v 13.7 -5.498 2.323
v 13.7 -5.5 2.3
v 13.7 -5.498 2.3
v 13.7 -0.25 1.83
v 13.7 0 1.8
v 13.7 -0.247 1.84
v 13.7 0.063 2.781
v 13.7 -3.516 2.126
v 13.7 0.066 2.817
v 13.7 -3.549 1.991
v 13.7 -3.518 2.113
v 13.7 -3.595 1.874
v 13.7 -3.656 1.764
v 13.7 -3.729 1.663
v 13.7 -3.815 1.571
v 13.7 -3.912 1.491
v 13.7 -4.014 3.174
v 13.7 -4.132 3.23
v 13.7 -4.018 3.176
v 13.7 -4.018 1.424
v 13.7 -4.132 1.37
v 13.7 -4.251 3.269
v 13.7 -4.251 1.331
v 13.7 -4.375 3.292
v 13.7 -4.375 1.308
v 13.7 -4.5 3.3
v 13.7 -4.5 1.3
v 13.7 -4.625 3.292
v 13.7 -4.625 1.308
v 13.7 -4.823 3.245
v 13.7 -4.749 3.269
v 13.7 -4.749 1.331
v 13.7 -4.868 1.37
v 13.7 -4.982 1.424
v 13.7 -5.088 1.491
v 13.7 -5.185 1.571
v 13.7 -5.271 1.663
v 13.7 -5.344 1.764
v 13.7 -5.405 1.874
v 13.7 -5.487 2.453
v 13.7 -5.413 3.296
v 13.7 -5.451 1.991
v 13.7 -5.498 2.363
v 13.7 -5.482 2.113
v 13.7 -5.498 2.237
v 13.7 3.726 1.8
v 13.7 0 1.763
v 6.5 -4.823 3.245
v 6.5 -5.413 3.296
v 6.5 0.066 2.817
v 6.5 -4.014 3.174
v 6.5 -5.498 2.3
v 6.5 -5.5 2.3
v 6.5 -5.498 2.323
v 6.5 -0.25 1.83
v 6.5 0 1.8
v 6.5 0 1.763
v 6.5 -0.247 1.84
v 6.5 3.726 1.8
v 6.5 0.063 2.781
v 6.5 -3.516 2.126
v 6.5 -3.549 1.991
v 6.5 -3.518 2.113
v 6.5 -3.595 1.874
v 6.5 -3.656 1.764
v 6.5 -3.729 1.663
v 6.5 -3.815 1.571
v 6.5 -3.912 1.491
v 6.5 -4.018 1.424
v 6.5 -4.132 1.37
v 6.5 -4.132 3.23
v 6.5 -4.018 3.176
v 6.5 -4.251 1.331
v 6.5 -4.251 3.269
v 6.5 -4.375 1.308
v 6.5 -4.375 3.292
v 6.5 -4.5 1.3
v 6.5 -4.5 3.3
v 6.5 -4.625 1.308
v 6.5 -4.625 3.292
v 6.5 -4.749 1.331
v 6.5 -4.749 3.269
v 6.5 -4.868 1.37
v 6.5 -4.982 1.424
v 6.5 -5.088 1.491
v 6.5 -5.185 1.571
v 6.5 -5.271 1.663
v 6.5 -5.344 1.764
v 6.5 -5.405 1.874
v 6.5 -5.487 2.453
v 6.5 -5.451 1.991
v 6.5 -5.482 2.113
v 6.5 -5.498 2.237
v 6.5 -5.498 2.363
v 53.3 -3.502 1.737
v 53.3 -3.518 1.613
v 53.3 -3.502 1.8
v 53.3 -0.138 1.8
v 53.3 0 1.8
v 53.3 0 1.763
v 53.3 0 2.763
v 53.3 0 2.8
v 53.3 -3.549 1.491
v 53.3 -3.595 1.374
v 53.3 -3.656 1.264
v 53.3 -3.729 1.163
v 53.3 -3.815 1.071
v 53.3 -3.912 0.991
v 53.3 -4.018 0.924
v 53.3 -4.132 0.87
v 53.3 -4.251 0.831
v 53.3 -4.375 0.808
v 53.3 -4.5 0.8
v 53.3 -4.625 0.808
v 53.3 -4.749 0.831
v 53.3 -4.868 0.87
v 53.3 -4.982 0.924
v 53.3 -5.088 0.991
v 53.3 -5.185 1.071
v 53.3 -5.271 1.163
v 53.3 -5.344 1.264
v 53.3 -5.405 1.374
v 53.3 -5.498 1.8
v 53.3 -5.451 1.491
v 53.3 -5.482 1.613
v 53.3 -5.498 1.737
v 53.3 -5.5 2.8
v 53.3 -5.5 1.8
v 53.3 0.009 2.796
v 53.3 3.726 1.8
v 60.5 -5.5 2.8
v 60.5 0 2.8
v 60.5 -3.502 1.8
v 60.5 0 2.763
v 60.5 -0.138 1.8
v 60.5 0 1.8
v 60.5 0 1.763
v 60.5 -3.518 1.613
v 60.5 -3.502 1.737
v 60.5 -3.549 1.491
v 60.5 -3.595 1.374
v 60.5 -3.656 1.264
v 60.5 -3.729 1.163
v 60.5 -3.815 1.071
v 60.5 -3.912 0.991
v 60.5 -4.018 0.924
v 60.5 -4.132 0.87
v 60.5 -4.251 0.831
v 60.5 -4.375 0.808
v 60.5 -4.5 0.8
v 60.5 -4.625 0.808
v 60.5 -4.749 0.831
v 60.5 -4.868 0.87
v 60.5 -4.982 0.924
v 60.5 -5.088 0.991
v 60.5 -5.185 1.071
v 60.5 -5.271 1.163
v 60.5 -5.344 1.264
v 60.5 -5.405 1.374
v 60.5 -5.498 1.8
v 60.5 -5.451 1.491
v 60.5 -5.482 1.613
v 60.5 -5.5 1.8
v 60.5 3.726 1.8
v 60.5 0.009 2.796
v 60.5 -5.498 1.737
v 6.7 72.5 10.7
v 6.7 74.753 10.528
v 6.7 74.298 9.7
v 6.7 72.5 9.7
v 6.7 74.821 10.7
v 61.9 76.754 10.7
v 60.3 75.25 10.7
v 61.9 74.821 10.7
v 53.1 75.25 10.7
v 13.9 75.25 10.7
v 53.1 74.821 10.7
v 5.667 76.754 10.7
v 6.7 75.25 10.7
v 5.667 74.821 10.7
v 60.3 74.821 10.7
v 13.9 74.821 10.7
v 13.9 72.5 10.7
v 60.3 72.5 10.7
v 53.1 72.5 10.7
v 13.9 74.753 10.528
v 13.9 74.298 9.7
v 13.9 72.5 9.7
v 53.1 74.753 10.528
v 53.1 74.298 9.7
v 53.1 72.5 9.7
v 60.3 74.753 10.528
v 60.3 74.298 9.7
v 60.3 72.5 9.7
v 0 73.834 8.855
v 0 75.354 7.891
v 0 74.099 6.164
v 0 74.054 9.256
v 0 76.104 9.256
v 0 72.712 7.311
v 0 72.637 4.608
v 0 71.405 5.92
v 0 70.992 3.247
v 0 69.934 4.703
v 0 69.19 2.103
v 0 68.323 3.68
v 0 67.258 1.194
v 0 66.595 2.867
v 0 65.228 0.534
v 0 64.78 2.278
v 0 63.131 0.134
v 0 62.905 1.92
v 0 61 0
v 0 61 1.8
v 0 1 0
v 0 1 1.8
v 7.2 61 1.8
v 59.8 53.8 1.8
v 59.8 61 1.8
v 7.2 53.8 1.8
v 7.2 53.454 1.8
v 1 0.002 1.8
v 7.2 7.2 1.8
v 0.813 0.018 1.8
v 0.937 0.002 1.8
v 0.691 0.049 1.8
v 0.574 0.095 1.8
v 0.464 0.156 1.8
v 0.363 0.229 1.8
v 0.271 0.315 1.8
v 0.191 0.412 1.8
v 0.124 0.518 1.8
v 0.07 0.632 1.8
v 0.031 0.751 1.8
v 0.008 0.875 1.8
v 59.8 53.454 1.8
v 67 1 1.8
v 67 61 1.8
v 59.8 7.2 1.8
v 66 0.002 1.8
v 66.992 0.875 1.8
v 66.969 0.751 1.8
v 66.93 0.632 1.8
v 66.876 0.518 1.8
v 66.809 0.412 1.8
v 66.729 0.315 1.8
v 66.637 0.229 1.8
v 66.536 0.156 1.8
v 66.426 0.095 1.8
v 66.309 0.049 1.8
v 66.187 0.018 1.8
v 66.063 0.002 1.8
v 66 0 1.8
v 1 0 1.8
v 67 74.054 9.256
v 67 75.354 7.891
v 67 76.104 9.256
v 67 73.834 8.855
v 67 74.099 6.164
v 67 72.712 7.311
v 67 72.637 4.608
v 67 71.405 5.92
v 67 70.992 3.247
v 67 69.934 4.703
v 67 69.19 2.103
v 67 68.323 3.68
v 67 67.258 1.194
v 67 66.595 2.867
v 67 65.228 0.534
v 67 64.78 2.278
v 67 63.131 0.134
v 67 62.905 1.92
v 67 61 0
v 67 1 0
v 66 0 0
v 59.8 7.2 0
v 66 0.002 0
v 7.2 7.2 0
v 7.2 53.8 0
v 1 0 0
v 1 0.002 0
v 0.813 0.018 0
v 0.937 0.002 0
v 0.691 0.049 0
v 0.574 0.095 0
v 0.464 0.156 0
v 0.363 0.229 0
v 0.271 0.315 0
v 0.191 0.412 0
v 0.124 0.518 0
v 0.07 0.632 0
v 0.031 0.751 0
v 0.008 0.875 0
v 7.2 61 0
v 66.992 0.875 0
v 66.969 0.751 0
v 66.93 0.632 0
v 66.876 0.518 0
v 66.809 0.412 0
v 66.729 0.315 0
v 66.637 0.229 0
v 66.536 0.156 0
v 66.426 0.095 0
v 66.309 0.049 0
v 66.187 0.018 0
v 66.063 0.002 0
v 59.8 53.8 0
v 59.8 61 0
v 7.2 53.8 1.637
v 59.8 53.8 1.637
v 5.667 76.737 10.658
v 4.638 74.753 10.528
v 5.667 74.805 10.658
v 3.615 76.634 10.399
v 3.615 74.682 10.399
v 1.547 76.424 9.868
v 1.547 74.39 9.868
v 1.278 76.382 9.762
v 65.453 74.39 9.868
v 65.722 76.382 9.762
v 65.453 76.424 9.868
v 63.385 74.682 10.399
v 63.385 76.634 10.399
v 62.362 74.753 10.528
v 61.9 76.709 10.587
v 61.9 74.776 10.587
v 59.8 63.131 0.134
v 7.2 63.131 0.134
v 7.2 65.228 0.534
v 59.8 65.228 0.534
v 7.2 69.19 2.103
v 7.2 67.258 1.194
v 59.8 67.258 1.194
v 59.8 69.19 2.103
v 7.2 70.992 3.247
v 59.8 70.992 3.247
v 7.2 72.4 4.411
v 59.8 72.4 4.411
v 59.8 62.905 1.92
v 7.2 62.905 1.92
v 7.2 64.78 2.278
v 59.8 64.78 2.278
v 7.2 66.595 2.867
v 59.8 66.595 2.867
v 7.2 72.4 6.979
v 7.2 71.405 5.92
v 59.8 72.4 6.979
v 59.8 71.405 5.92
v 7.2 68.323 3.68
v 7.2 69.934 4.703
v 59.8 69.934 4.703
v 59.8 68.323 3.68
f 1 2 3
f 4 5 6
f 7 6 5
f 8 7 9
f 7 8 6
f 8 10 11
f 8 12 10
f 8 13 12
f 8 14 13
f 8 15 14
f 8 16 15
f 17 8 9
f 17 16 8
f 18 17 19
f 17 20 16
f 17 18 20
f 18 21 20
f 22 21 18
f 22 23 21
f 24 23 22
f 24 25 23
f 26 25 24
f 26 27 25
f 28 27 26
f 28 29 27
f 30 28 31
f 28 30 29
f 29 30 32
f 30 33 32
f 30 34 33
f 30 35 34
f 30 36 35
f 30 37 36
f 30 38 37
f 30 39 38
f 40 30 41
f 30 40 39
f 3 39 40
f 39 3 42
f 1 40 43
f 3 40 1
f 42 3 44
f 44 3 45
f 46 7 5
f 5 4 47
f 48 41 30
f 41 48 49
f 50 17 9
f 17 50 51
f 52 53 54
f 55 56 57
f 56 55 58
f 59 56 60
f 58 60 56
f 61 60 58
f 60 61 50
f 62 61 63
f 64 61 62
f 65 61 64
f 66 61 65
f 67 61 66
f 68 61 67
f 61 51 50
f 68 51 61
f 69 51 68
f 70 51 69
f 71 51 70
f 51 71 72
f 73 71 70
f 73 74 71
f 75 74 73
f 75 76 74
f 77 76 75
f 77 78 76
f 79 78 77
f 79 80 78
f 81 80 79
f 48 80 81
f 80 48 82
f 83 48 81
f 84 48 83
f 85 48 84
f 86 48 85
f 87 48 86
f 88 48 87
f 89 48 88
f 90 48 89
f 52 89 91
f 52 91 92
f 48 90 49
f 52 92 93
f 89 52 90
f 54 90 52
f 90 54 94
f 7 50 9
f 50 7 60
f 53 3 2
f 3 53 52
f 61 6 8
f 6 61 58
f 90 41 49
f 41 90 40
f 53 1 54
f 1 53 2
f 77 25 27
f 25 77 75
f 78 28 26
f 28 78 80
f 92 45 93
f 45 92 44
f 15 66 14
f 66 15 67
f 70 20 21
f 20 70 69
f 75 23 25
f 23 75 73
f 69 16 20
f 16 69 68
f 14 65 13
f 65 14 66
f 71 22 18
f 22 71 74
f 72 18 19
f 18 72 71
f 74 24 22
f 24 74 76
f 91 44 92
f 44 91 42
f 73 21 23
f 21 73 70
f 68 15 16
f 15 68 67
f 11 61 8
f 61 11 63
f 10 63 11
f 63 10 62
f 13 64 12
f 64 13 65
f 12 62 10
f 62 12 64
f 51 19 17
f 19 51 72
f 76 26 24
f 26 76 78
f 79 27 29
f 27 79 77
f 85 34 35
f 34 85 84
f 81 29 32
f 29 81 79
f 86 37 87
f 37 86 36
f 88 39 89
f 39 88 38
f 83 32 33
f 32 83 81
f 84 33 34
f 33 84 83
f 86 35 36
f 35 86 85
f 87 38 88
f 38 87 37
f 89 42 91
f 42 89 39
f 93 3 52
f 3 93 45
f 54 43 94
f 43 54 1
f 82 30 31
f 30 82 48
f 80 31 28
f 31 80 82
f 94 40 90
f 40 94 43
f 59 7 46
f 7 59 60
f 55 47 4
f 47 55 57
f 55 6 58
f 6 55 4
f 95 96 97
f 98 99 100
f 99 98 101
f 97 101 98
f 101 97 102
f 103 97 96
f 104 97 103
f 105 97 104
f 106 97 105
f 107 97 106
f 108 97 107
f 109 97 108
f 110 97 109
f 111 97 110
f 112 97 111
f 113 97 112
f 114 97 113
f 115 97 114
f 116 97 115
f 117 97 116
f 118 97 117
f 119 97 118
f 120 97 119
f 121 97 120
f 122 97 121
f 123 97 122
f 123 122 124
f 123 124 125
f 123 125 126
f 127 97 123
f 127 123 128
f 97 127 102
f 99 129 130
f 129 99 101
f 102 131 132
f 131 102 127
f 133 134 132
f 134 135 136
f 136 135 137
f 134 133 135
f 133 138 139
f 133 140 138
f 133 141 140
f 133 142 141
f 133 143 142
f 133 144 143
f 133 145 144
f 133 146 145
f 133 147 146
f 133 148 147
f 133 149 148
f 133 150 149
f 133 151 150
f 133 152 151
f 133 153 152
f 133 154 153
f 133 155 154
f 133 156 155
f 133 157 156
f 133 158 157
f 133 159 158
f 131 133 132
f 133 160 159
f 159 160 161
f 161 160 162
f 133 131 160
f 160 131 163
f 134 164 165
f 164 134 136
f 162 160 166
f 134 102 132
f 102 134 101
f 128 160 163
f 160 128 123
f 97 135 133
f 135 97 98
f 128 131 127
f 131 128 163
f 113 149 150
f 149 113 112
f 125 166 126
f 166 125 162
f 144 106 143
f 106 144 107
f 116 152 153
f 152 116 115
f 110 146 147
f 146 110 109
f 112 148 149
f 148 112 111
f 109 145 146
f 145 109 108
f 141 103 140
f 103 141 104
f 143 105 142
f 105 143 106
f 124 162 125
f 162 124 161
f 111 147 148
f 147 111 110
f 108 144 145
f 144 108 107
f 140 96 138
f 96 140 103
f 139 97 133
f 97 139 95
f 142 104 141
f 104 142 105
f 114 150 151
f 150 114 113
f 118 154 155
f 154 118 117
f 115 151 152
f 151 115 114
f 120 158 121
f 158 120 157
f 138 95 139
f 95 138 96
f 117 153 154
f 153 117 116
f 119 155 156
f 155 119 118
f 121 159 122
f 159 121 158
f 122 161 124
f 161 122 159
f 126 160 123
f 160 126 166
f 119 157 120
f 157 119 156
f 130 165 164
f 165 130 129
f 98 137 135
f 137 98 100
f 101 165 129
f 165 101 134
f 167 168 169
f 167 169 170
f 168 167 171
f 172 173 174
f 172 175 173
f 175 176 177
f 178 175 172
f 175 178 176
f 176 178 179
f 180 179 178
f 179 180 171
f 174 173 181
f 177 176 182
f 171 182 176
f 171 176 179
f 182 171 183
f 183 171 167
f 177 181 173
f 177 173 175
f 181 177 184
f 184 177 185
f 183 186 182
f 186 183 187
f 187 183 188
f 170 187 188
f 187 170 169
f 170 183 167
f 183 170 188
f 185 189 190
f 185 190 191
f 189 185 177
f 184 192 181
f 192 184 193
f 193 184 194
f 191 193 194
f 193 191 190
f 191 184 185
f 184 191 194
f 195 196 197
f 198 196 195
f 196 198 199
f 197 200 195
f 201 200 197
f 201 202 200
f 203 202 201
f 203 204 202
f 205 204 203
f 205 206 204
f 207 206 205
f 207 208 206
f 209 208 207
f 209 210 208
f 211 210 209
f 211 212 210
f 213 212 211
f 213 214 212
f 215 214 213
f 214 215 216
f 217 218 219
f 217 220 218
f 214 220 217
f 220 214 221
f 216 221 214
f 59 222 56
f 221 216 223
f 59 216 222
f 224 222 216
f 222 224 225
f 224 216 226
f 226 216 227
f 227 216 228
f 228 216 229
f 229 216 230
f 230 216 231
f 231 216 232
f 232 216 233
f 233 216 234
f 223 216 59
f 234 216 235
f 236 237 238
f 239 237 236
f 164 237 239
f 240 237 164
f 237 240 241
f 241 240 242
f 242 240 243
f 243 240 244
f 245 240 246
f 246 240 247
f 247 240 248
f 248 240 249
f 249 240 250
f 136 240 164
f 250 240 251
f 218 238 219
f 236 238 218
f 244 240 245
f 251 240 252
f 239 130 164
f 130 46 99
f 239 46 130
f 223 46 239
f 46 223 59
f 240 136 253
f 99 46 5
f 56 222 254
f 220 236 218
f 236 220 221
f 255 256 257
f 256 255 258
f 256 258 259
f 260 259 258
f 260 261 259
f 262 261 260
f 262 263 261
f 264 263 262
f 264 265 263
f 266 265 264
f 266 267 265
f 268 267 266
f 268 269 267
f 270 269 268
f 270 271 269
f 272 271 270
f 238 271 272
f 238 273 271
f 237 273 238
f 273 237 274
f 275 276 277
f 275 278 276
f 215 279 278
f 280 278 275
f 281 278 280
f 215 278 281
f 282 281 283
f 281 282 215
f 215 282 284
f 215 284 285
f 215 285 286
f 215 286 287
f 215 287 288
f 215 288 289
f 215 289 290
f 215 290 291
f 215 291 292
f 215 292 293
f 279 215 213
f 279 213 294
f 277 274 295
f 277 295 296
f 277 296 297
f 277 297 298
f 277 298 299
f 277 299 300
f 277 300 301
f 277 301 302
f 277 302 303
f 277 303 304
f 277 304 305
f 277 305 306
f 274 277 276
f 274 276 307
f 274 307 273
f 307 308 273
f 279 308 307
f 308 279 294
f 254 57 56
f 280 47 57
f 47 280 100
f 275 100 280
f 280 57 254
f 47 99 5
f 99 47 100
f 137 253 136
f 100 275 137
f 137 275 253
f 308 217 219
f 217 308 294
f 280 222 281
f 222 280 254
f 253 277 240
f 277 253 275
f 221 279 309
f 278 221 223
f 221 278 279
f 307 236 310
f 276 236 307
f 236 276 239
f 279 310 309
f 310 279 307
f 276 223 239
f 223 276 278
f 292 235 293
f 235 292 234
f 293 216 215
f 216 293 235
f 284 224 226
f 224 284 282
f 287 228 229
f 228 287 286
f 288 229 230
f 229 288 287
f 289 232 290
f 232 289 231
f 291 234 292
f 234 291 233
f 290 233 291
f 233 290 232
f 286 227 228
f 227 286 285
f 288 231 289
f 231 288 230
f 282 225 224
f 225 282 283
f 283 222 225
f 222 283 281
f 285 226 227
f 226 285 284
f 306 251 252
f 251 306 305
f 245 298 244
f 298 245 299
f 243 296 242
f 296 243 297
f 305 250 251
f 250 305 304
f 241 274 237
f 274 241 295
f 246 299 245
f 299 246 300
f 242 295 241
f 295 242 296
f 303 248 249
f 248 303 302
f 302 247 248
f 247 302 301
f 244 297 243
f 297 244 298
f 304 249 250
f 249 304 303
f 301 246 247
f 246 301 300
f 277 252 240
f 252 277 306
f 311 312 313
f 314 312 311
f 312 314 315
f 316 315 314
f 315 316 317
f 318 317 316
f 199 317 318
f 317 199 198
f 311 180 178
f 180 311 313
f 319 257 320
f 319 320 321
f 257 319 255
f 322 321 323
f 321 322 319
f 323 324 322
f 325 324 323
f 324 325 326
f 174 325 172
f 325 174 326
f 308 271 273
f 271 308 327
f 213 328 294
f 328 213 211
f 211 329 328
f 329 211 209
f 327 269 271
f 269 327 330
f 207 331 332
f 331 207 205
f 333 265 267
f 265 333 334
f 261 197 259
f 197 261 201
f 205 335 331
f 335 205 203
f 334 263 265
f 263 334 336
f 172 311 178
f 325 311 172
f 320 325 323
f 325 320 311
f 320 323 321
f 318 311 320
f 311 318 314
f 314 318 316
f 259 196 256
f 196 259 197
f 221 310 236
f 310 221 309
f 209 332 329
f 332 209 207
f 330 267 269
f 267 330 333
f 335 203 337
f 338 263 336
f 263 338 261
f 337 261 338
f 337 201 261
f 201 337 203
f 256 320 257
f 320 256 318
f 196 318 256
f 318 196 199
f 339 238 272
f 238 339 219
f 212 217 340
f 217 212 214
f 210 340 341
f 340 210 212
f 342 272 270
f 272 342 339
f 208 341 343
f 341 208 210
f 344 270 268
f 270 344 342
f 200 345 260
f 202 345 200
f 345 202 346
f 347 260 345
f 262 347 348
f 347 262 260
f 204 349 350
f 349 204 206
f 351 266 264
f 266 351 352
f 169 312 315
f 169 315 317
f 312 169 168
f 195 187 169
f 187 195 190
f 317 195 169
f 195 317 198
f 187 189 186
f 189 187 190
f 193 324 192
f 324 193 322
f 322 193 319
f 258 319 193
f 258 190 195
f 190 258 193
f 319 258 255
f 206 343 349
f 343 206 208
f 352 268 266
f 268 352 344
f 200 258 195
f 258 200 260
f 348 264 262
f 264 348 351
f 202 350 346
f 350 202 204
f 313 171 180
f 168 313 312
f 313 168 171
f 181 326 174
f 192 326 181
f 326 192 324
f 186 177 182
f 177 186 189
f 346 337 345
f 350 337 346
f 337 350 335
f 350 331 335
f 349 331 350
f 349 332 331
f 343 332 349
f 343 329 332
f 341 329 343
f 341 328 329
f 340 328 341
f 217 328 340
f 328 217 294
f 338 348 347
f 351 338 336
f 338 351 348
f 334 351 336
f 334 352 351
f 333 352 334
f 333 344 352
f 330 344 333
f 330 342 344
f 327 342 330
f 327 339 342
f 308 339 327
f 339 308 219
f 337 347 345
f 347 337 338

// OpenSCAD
$fn = 50;

width = 67;
length = 61;
height = 10.7;
radius_front = 17;
front_length = 15;
top_indent = 3; // for later; how much of the tip of the mouth goes in
thickness = 1.8;
tooth_width = 7.2;
tooth_height = .65;
tooth_length = 5.5;
tooth_distance = 6.5;
tooth_thickness = 1;
tooth_hook_radius = 1;

printer_tolerance = .2;

rounding_radius_small = 1;

module bottom_plate() {
    difference(){
        cube([width, length, thickness]);
        cube([rounding_radius_small, rounding_radius_small, thickness]);
        translate([width - rounding_radius_small, 0, 0])cube([rounding_radius_small, rounding_radius_small, thickness]);
        // save filament for test
        translate([tooth_width, tooth_width, 0])cube([width - 2 * tooth_width, length - 2 * tooth_width, thickness]);
    }
    translate([rounding_radius_small, rounding_radius_small, 0])cylinder(h = thickness, r = rounding_radius_small);
    translate([width - rounding_radius_small, rounding_radius_small, 0])cylinder(h = thickness, r = rounding_radius_small);
}

module front() {
    difference() {
        // start with the cylinder
        translate([0, length, radius_front])rotate([0, 90, 0])cylinder(h = width, r = radius_front);

        // convert cylinder into tube
        translate([0, length, radius_front])rotate([0, 90, 0])cylinder(h = width, r = radius_front - thickness);

        // cut off top - front
        translate([0, length, height])cube([width, length + front_length, width * 2]);

        // cut off top - back
        translate([0, -length, thickness])cube([width, length * 2, length * 2]);


        // save filament for test
        translate([tooth_width, length, 0])cube([width - 2 * tooth_width, front_length - .5 * tooth_width, height]);
    }
}

module teeth() {
    translate([tooth_distance, -tooth_length, thickness + tooth_thickness / 2])rotate([-5, 0, 0])cube([tooth_width, tooth_length, tooth_thickness]);
    translate([tooth_distance, -tooth_length + tooth_hook_radius, thickness + tooth_thickness / 2])rotate([0, 90, 0])cylinder(h = tooth_width, r = tooth_hook_radius);
    translate([tooth_distance, -.25, thickness + .03])rotate([-15, 0, 0])cube([tooth_width, tooth_length, tooth_thickness]);

    translate([width - tooth_width - tooth_distance, -tooth_length, thickness])cube([tooth_width, tooth_length, tooth_thickness]);
    translate([width - tooth_width - tooth_distance, -tooth_length + tooth_hook_radius, thickness])rotate([0, 90, 0])cylinder(h = tooth_width, r = tooth_hook_radius);
    translate([width - tooth_width - tooth_distance, -.25, thickness + .03])rotate([-15, 0, 0])cube([tooth_width, tooth_length, tooth_thickness]);

    translate([tooth_distance + printer_tolerance, length + radius_front - tooth_length, height - tooth_thickness])cube([tooth_width, tooth_length / 2, tooth_thickness]);
//    translate([tooth_distance, -tooth_length + tooth_hook_radius, thickness])rotate([0, 90, 0])cylinder(h = tooth_width, r = tooth_hook_radius);
    translate([width - tooth_width - tooth_distance - printer_tolerance, length + radius_front - tooth_length, height - tooth_thickness])cube([tooth_width, tooth_length / 2, tooth_thickness]);
}

bottom_plate();
difference(){
    front();
    rounded_front();
}
teeth();

module rounded_front() {
    difference(){
        translate([radius_front / 2, length + front_length + thickness / 2, height - radius_front])rotate([90, 0, 0])cylinder(h = thickness * 2, r = radius_front + 2 * thickness);
        translate([radius_front / 2.5, length + front_length + thickness / 2, height - radius_front])rotate([90, 0, 0])cylinder(h = thickness * 2, r = radius_front);
        translate([radius_front / 3, length + front_length / 2, 0])cube([radius_front * 2, radius_front, radius_front]);
    }
    difference(){
        translate([width - radius_front / 2, length + front_length + thickness / 2, height - radius_front])rotate([90, 0, 0])cylinder(h = thickness * 2, r = radius_front + 2 * thickness);
        translate([width - radius_front / 2.5, length + front_length + thickness / 2, height - radius_front])rotate([90, 0, 0])cylinder(h = thickness * 2, r = radius_front);
        translate([width - 2.3 * radius_front, length + front_length / 2, 0])cube([radius_front * 2, radius_front, radius_front]);
    }
}
// rounded_front();

//    translate([5, 5, 1])cube([width - 10, length - 10, height]);

// just for reference
/*
color(c = "red")translate([0, length + length_front, 0])cube([width, 20, height]);
color(c = "red")translate([width, length, 0])cube([10, 15, height]);
//*/
